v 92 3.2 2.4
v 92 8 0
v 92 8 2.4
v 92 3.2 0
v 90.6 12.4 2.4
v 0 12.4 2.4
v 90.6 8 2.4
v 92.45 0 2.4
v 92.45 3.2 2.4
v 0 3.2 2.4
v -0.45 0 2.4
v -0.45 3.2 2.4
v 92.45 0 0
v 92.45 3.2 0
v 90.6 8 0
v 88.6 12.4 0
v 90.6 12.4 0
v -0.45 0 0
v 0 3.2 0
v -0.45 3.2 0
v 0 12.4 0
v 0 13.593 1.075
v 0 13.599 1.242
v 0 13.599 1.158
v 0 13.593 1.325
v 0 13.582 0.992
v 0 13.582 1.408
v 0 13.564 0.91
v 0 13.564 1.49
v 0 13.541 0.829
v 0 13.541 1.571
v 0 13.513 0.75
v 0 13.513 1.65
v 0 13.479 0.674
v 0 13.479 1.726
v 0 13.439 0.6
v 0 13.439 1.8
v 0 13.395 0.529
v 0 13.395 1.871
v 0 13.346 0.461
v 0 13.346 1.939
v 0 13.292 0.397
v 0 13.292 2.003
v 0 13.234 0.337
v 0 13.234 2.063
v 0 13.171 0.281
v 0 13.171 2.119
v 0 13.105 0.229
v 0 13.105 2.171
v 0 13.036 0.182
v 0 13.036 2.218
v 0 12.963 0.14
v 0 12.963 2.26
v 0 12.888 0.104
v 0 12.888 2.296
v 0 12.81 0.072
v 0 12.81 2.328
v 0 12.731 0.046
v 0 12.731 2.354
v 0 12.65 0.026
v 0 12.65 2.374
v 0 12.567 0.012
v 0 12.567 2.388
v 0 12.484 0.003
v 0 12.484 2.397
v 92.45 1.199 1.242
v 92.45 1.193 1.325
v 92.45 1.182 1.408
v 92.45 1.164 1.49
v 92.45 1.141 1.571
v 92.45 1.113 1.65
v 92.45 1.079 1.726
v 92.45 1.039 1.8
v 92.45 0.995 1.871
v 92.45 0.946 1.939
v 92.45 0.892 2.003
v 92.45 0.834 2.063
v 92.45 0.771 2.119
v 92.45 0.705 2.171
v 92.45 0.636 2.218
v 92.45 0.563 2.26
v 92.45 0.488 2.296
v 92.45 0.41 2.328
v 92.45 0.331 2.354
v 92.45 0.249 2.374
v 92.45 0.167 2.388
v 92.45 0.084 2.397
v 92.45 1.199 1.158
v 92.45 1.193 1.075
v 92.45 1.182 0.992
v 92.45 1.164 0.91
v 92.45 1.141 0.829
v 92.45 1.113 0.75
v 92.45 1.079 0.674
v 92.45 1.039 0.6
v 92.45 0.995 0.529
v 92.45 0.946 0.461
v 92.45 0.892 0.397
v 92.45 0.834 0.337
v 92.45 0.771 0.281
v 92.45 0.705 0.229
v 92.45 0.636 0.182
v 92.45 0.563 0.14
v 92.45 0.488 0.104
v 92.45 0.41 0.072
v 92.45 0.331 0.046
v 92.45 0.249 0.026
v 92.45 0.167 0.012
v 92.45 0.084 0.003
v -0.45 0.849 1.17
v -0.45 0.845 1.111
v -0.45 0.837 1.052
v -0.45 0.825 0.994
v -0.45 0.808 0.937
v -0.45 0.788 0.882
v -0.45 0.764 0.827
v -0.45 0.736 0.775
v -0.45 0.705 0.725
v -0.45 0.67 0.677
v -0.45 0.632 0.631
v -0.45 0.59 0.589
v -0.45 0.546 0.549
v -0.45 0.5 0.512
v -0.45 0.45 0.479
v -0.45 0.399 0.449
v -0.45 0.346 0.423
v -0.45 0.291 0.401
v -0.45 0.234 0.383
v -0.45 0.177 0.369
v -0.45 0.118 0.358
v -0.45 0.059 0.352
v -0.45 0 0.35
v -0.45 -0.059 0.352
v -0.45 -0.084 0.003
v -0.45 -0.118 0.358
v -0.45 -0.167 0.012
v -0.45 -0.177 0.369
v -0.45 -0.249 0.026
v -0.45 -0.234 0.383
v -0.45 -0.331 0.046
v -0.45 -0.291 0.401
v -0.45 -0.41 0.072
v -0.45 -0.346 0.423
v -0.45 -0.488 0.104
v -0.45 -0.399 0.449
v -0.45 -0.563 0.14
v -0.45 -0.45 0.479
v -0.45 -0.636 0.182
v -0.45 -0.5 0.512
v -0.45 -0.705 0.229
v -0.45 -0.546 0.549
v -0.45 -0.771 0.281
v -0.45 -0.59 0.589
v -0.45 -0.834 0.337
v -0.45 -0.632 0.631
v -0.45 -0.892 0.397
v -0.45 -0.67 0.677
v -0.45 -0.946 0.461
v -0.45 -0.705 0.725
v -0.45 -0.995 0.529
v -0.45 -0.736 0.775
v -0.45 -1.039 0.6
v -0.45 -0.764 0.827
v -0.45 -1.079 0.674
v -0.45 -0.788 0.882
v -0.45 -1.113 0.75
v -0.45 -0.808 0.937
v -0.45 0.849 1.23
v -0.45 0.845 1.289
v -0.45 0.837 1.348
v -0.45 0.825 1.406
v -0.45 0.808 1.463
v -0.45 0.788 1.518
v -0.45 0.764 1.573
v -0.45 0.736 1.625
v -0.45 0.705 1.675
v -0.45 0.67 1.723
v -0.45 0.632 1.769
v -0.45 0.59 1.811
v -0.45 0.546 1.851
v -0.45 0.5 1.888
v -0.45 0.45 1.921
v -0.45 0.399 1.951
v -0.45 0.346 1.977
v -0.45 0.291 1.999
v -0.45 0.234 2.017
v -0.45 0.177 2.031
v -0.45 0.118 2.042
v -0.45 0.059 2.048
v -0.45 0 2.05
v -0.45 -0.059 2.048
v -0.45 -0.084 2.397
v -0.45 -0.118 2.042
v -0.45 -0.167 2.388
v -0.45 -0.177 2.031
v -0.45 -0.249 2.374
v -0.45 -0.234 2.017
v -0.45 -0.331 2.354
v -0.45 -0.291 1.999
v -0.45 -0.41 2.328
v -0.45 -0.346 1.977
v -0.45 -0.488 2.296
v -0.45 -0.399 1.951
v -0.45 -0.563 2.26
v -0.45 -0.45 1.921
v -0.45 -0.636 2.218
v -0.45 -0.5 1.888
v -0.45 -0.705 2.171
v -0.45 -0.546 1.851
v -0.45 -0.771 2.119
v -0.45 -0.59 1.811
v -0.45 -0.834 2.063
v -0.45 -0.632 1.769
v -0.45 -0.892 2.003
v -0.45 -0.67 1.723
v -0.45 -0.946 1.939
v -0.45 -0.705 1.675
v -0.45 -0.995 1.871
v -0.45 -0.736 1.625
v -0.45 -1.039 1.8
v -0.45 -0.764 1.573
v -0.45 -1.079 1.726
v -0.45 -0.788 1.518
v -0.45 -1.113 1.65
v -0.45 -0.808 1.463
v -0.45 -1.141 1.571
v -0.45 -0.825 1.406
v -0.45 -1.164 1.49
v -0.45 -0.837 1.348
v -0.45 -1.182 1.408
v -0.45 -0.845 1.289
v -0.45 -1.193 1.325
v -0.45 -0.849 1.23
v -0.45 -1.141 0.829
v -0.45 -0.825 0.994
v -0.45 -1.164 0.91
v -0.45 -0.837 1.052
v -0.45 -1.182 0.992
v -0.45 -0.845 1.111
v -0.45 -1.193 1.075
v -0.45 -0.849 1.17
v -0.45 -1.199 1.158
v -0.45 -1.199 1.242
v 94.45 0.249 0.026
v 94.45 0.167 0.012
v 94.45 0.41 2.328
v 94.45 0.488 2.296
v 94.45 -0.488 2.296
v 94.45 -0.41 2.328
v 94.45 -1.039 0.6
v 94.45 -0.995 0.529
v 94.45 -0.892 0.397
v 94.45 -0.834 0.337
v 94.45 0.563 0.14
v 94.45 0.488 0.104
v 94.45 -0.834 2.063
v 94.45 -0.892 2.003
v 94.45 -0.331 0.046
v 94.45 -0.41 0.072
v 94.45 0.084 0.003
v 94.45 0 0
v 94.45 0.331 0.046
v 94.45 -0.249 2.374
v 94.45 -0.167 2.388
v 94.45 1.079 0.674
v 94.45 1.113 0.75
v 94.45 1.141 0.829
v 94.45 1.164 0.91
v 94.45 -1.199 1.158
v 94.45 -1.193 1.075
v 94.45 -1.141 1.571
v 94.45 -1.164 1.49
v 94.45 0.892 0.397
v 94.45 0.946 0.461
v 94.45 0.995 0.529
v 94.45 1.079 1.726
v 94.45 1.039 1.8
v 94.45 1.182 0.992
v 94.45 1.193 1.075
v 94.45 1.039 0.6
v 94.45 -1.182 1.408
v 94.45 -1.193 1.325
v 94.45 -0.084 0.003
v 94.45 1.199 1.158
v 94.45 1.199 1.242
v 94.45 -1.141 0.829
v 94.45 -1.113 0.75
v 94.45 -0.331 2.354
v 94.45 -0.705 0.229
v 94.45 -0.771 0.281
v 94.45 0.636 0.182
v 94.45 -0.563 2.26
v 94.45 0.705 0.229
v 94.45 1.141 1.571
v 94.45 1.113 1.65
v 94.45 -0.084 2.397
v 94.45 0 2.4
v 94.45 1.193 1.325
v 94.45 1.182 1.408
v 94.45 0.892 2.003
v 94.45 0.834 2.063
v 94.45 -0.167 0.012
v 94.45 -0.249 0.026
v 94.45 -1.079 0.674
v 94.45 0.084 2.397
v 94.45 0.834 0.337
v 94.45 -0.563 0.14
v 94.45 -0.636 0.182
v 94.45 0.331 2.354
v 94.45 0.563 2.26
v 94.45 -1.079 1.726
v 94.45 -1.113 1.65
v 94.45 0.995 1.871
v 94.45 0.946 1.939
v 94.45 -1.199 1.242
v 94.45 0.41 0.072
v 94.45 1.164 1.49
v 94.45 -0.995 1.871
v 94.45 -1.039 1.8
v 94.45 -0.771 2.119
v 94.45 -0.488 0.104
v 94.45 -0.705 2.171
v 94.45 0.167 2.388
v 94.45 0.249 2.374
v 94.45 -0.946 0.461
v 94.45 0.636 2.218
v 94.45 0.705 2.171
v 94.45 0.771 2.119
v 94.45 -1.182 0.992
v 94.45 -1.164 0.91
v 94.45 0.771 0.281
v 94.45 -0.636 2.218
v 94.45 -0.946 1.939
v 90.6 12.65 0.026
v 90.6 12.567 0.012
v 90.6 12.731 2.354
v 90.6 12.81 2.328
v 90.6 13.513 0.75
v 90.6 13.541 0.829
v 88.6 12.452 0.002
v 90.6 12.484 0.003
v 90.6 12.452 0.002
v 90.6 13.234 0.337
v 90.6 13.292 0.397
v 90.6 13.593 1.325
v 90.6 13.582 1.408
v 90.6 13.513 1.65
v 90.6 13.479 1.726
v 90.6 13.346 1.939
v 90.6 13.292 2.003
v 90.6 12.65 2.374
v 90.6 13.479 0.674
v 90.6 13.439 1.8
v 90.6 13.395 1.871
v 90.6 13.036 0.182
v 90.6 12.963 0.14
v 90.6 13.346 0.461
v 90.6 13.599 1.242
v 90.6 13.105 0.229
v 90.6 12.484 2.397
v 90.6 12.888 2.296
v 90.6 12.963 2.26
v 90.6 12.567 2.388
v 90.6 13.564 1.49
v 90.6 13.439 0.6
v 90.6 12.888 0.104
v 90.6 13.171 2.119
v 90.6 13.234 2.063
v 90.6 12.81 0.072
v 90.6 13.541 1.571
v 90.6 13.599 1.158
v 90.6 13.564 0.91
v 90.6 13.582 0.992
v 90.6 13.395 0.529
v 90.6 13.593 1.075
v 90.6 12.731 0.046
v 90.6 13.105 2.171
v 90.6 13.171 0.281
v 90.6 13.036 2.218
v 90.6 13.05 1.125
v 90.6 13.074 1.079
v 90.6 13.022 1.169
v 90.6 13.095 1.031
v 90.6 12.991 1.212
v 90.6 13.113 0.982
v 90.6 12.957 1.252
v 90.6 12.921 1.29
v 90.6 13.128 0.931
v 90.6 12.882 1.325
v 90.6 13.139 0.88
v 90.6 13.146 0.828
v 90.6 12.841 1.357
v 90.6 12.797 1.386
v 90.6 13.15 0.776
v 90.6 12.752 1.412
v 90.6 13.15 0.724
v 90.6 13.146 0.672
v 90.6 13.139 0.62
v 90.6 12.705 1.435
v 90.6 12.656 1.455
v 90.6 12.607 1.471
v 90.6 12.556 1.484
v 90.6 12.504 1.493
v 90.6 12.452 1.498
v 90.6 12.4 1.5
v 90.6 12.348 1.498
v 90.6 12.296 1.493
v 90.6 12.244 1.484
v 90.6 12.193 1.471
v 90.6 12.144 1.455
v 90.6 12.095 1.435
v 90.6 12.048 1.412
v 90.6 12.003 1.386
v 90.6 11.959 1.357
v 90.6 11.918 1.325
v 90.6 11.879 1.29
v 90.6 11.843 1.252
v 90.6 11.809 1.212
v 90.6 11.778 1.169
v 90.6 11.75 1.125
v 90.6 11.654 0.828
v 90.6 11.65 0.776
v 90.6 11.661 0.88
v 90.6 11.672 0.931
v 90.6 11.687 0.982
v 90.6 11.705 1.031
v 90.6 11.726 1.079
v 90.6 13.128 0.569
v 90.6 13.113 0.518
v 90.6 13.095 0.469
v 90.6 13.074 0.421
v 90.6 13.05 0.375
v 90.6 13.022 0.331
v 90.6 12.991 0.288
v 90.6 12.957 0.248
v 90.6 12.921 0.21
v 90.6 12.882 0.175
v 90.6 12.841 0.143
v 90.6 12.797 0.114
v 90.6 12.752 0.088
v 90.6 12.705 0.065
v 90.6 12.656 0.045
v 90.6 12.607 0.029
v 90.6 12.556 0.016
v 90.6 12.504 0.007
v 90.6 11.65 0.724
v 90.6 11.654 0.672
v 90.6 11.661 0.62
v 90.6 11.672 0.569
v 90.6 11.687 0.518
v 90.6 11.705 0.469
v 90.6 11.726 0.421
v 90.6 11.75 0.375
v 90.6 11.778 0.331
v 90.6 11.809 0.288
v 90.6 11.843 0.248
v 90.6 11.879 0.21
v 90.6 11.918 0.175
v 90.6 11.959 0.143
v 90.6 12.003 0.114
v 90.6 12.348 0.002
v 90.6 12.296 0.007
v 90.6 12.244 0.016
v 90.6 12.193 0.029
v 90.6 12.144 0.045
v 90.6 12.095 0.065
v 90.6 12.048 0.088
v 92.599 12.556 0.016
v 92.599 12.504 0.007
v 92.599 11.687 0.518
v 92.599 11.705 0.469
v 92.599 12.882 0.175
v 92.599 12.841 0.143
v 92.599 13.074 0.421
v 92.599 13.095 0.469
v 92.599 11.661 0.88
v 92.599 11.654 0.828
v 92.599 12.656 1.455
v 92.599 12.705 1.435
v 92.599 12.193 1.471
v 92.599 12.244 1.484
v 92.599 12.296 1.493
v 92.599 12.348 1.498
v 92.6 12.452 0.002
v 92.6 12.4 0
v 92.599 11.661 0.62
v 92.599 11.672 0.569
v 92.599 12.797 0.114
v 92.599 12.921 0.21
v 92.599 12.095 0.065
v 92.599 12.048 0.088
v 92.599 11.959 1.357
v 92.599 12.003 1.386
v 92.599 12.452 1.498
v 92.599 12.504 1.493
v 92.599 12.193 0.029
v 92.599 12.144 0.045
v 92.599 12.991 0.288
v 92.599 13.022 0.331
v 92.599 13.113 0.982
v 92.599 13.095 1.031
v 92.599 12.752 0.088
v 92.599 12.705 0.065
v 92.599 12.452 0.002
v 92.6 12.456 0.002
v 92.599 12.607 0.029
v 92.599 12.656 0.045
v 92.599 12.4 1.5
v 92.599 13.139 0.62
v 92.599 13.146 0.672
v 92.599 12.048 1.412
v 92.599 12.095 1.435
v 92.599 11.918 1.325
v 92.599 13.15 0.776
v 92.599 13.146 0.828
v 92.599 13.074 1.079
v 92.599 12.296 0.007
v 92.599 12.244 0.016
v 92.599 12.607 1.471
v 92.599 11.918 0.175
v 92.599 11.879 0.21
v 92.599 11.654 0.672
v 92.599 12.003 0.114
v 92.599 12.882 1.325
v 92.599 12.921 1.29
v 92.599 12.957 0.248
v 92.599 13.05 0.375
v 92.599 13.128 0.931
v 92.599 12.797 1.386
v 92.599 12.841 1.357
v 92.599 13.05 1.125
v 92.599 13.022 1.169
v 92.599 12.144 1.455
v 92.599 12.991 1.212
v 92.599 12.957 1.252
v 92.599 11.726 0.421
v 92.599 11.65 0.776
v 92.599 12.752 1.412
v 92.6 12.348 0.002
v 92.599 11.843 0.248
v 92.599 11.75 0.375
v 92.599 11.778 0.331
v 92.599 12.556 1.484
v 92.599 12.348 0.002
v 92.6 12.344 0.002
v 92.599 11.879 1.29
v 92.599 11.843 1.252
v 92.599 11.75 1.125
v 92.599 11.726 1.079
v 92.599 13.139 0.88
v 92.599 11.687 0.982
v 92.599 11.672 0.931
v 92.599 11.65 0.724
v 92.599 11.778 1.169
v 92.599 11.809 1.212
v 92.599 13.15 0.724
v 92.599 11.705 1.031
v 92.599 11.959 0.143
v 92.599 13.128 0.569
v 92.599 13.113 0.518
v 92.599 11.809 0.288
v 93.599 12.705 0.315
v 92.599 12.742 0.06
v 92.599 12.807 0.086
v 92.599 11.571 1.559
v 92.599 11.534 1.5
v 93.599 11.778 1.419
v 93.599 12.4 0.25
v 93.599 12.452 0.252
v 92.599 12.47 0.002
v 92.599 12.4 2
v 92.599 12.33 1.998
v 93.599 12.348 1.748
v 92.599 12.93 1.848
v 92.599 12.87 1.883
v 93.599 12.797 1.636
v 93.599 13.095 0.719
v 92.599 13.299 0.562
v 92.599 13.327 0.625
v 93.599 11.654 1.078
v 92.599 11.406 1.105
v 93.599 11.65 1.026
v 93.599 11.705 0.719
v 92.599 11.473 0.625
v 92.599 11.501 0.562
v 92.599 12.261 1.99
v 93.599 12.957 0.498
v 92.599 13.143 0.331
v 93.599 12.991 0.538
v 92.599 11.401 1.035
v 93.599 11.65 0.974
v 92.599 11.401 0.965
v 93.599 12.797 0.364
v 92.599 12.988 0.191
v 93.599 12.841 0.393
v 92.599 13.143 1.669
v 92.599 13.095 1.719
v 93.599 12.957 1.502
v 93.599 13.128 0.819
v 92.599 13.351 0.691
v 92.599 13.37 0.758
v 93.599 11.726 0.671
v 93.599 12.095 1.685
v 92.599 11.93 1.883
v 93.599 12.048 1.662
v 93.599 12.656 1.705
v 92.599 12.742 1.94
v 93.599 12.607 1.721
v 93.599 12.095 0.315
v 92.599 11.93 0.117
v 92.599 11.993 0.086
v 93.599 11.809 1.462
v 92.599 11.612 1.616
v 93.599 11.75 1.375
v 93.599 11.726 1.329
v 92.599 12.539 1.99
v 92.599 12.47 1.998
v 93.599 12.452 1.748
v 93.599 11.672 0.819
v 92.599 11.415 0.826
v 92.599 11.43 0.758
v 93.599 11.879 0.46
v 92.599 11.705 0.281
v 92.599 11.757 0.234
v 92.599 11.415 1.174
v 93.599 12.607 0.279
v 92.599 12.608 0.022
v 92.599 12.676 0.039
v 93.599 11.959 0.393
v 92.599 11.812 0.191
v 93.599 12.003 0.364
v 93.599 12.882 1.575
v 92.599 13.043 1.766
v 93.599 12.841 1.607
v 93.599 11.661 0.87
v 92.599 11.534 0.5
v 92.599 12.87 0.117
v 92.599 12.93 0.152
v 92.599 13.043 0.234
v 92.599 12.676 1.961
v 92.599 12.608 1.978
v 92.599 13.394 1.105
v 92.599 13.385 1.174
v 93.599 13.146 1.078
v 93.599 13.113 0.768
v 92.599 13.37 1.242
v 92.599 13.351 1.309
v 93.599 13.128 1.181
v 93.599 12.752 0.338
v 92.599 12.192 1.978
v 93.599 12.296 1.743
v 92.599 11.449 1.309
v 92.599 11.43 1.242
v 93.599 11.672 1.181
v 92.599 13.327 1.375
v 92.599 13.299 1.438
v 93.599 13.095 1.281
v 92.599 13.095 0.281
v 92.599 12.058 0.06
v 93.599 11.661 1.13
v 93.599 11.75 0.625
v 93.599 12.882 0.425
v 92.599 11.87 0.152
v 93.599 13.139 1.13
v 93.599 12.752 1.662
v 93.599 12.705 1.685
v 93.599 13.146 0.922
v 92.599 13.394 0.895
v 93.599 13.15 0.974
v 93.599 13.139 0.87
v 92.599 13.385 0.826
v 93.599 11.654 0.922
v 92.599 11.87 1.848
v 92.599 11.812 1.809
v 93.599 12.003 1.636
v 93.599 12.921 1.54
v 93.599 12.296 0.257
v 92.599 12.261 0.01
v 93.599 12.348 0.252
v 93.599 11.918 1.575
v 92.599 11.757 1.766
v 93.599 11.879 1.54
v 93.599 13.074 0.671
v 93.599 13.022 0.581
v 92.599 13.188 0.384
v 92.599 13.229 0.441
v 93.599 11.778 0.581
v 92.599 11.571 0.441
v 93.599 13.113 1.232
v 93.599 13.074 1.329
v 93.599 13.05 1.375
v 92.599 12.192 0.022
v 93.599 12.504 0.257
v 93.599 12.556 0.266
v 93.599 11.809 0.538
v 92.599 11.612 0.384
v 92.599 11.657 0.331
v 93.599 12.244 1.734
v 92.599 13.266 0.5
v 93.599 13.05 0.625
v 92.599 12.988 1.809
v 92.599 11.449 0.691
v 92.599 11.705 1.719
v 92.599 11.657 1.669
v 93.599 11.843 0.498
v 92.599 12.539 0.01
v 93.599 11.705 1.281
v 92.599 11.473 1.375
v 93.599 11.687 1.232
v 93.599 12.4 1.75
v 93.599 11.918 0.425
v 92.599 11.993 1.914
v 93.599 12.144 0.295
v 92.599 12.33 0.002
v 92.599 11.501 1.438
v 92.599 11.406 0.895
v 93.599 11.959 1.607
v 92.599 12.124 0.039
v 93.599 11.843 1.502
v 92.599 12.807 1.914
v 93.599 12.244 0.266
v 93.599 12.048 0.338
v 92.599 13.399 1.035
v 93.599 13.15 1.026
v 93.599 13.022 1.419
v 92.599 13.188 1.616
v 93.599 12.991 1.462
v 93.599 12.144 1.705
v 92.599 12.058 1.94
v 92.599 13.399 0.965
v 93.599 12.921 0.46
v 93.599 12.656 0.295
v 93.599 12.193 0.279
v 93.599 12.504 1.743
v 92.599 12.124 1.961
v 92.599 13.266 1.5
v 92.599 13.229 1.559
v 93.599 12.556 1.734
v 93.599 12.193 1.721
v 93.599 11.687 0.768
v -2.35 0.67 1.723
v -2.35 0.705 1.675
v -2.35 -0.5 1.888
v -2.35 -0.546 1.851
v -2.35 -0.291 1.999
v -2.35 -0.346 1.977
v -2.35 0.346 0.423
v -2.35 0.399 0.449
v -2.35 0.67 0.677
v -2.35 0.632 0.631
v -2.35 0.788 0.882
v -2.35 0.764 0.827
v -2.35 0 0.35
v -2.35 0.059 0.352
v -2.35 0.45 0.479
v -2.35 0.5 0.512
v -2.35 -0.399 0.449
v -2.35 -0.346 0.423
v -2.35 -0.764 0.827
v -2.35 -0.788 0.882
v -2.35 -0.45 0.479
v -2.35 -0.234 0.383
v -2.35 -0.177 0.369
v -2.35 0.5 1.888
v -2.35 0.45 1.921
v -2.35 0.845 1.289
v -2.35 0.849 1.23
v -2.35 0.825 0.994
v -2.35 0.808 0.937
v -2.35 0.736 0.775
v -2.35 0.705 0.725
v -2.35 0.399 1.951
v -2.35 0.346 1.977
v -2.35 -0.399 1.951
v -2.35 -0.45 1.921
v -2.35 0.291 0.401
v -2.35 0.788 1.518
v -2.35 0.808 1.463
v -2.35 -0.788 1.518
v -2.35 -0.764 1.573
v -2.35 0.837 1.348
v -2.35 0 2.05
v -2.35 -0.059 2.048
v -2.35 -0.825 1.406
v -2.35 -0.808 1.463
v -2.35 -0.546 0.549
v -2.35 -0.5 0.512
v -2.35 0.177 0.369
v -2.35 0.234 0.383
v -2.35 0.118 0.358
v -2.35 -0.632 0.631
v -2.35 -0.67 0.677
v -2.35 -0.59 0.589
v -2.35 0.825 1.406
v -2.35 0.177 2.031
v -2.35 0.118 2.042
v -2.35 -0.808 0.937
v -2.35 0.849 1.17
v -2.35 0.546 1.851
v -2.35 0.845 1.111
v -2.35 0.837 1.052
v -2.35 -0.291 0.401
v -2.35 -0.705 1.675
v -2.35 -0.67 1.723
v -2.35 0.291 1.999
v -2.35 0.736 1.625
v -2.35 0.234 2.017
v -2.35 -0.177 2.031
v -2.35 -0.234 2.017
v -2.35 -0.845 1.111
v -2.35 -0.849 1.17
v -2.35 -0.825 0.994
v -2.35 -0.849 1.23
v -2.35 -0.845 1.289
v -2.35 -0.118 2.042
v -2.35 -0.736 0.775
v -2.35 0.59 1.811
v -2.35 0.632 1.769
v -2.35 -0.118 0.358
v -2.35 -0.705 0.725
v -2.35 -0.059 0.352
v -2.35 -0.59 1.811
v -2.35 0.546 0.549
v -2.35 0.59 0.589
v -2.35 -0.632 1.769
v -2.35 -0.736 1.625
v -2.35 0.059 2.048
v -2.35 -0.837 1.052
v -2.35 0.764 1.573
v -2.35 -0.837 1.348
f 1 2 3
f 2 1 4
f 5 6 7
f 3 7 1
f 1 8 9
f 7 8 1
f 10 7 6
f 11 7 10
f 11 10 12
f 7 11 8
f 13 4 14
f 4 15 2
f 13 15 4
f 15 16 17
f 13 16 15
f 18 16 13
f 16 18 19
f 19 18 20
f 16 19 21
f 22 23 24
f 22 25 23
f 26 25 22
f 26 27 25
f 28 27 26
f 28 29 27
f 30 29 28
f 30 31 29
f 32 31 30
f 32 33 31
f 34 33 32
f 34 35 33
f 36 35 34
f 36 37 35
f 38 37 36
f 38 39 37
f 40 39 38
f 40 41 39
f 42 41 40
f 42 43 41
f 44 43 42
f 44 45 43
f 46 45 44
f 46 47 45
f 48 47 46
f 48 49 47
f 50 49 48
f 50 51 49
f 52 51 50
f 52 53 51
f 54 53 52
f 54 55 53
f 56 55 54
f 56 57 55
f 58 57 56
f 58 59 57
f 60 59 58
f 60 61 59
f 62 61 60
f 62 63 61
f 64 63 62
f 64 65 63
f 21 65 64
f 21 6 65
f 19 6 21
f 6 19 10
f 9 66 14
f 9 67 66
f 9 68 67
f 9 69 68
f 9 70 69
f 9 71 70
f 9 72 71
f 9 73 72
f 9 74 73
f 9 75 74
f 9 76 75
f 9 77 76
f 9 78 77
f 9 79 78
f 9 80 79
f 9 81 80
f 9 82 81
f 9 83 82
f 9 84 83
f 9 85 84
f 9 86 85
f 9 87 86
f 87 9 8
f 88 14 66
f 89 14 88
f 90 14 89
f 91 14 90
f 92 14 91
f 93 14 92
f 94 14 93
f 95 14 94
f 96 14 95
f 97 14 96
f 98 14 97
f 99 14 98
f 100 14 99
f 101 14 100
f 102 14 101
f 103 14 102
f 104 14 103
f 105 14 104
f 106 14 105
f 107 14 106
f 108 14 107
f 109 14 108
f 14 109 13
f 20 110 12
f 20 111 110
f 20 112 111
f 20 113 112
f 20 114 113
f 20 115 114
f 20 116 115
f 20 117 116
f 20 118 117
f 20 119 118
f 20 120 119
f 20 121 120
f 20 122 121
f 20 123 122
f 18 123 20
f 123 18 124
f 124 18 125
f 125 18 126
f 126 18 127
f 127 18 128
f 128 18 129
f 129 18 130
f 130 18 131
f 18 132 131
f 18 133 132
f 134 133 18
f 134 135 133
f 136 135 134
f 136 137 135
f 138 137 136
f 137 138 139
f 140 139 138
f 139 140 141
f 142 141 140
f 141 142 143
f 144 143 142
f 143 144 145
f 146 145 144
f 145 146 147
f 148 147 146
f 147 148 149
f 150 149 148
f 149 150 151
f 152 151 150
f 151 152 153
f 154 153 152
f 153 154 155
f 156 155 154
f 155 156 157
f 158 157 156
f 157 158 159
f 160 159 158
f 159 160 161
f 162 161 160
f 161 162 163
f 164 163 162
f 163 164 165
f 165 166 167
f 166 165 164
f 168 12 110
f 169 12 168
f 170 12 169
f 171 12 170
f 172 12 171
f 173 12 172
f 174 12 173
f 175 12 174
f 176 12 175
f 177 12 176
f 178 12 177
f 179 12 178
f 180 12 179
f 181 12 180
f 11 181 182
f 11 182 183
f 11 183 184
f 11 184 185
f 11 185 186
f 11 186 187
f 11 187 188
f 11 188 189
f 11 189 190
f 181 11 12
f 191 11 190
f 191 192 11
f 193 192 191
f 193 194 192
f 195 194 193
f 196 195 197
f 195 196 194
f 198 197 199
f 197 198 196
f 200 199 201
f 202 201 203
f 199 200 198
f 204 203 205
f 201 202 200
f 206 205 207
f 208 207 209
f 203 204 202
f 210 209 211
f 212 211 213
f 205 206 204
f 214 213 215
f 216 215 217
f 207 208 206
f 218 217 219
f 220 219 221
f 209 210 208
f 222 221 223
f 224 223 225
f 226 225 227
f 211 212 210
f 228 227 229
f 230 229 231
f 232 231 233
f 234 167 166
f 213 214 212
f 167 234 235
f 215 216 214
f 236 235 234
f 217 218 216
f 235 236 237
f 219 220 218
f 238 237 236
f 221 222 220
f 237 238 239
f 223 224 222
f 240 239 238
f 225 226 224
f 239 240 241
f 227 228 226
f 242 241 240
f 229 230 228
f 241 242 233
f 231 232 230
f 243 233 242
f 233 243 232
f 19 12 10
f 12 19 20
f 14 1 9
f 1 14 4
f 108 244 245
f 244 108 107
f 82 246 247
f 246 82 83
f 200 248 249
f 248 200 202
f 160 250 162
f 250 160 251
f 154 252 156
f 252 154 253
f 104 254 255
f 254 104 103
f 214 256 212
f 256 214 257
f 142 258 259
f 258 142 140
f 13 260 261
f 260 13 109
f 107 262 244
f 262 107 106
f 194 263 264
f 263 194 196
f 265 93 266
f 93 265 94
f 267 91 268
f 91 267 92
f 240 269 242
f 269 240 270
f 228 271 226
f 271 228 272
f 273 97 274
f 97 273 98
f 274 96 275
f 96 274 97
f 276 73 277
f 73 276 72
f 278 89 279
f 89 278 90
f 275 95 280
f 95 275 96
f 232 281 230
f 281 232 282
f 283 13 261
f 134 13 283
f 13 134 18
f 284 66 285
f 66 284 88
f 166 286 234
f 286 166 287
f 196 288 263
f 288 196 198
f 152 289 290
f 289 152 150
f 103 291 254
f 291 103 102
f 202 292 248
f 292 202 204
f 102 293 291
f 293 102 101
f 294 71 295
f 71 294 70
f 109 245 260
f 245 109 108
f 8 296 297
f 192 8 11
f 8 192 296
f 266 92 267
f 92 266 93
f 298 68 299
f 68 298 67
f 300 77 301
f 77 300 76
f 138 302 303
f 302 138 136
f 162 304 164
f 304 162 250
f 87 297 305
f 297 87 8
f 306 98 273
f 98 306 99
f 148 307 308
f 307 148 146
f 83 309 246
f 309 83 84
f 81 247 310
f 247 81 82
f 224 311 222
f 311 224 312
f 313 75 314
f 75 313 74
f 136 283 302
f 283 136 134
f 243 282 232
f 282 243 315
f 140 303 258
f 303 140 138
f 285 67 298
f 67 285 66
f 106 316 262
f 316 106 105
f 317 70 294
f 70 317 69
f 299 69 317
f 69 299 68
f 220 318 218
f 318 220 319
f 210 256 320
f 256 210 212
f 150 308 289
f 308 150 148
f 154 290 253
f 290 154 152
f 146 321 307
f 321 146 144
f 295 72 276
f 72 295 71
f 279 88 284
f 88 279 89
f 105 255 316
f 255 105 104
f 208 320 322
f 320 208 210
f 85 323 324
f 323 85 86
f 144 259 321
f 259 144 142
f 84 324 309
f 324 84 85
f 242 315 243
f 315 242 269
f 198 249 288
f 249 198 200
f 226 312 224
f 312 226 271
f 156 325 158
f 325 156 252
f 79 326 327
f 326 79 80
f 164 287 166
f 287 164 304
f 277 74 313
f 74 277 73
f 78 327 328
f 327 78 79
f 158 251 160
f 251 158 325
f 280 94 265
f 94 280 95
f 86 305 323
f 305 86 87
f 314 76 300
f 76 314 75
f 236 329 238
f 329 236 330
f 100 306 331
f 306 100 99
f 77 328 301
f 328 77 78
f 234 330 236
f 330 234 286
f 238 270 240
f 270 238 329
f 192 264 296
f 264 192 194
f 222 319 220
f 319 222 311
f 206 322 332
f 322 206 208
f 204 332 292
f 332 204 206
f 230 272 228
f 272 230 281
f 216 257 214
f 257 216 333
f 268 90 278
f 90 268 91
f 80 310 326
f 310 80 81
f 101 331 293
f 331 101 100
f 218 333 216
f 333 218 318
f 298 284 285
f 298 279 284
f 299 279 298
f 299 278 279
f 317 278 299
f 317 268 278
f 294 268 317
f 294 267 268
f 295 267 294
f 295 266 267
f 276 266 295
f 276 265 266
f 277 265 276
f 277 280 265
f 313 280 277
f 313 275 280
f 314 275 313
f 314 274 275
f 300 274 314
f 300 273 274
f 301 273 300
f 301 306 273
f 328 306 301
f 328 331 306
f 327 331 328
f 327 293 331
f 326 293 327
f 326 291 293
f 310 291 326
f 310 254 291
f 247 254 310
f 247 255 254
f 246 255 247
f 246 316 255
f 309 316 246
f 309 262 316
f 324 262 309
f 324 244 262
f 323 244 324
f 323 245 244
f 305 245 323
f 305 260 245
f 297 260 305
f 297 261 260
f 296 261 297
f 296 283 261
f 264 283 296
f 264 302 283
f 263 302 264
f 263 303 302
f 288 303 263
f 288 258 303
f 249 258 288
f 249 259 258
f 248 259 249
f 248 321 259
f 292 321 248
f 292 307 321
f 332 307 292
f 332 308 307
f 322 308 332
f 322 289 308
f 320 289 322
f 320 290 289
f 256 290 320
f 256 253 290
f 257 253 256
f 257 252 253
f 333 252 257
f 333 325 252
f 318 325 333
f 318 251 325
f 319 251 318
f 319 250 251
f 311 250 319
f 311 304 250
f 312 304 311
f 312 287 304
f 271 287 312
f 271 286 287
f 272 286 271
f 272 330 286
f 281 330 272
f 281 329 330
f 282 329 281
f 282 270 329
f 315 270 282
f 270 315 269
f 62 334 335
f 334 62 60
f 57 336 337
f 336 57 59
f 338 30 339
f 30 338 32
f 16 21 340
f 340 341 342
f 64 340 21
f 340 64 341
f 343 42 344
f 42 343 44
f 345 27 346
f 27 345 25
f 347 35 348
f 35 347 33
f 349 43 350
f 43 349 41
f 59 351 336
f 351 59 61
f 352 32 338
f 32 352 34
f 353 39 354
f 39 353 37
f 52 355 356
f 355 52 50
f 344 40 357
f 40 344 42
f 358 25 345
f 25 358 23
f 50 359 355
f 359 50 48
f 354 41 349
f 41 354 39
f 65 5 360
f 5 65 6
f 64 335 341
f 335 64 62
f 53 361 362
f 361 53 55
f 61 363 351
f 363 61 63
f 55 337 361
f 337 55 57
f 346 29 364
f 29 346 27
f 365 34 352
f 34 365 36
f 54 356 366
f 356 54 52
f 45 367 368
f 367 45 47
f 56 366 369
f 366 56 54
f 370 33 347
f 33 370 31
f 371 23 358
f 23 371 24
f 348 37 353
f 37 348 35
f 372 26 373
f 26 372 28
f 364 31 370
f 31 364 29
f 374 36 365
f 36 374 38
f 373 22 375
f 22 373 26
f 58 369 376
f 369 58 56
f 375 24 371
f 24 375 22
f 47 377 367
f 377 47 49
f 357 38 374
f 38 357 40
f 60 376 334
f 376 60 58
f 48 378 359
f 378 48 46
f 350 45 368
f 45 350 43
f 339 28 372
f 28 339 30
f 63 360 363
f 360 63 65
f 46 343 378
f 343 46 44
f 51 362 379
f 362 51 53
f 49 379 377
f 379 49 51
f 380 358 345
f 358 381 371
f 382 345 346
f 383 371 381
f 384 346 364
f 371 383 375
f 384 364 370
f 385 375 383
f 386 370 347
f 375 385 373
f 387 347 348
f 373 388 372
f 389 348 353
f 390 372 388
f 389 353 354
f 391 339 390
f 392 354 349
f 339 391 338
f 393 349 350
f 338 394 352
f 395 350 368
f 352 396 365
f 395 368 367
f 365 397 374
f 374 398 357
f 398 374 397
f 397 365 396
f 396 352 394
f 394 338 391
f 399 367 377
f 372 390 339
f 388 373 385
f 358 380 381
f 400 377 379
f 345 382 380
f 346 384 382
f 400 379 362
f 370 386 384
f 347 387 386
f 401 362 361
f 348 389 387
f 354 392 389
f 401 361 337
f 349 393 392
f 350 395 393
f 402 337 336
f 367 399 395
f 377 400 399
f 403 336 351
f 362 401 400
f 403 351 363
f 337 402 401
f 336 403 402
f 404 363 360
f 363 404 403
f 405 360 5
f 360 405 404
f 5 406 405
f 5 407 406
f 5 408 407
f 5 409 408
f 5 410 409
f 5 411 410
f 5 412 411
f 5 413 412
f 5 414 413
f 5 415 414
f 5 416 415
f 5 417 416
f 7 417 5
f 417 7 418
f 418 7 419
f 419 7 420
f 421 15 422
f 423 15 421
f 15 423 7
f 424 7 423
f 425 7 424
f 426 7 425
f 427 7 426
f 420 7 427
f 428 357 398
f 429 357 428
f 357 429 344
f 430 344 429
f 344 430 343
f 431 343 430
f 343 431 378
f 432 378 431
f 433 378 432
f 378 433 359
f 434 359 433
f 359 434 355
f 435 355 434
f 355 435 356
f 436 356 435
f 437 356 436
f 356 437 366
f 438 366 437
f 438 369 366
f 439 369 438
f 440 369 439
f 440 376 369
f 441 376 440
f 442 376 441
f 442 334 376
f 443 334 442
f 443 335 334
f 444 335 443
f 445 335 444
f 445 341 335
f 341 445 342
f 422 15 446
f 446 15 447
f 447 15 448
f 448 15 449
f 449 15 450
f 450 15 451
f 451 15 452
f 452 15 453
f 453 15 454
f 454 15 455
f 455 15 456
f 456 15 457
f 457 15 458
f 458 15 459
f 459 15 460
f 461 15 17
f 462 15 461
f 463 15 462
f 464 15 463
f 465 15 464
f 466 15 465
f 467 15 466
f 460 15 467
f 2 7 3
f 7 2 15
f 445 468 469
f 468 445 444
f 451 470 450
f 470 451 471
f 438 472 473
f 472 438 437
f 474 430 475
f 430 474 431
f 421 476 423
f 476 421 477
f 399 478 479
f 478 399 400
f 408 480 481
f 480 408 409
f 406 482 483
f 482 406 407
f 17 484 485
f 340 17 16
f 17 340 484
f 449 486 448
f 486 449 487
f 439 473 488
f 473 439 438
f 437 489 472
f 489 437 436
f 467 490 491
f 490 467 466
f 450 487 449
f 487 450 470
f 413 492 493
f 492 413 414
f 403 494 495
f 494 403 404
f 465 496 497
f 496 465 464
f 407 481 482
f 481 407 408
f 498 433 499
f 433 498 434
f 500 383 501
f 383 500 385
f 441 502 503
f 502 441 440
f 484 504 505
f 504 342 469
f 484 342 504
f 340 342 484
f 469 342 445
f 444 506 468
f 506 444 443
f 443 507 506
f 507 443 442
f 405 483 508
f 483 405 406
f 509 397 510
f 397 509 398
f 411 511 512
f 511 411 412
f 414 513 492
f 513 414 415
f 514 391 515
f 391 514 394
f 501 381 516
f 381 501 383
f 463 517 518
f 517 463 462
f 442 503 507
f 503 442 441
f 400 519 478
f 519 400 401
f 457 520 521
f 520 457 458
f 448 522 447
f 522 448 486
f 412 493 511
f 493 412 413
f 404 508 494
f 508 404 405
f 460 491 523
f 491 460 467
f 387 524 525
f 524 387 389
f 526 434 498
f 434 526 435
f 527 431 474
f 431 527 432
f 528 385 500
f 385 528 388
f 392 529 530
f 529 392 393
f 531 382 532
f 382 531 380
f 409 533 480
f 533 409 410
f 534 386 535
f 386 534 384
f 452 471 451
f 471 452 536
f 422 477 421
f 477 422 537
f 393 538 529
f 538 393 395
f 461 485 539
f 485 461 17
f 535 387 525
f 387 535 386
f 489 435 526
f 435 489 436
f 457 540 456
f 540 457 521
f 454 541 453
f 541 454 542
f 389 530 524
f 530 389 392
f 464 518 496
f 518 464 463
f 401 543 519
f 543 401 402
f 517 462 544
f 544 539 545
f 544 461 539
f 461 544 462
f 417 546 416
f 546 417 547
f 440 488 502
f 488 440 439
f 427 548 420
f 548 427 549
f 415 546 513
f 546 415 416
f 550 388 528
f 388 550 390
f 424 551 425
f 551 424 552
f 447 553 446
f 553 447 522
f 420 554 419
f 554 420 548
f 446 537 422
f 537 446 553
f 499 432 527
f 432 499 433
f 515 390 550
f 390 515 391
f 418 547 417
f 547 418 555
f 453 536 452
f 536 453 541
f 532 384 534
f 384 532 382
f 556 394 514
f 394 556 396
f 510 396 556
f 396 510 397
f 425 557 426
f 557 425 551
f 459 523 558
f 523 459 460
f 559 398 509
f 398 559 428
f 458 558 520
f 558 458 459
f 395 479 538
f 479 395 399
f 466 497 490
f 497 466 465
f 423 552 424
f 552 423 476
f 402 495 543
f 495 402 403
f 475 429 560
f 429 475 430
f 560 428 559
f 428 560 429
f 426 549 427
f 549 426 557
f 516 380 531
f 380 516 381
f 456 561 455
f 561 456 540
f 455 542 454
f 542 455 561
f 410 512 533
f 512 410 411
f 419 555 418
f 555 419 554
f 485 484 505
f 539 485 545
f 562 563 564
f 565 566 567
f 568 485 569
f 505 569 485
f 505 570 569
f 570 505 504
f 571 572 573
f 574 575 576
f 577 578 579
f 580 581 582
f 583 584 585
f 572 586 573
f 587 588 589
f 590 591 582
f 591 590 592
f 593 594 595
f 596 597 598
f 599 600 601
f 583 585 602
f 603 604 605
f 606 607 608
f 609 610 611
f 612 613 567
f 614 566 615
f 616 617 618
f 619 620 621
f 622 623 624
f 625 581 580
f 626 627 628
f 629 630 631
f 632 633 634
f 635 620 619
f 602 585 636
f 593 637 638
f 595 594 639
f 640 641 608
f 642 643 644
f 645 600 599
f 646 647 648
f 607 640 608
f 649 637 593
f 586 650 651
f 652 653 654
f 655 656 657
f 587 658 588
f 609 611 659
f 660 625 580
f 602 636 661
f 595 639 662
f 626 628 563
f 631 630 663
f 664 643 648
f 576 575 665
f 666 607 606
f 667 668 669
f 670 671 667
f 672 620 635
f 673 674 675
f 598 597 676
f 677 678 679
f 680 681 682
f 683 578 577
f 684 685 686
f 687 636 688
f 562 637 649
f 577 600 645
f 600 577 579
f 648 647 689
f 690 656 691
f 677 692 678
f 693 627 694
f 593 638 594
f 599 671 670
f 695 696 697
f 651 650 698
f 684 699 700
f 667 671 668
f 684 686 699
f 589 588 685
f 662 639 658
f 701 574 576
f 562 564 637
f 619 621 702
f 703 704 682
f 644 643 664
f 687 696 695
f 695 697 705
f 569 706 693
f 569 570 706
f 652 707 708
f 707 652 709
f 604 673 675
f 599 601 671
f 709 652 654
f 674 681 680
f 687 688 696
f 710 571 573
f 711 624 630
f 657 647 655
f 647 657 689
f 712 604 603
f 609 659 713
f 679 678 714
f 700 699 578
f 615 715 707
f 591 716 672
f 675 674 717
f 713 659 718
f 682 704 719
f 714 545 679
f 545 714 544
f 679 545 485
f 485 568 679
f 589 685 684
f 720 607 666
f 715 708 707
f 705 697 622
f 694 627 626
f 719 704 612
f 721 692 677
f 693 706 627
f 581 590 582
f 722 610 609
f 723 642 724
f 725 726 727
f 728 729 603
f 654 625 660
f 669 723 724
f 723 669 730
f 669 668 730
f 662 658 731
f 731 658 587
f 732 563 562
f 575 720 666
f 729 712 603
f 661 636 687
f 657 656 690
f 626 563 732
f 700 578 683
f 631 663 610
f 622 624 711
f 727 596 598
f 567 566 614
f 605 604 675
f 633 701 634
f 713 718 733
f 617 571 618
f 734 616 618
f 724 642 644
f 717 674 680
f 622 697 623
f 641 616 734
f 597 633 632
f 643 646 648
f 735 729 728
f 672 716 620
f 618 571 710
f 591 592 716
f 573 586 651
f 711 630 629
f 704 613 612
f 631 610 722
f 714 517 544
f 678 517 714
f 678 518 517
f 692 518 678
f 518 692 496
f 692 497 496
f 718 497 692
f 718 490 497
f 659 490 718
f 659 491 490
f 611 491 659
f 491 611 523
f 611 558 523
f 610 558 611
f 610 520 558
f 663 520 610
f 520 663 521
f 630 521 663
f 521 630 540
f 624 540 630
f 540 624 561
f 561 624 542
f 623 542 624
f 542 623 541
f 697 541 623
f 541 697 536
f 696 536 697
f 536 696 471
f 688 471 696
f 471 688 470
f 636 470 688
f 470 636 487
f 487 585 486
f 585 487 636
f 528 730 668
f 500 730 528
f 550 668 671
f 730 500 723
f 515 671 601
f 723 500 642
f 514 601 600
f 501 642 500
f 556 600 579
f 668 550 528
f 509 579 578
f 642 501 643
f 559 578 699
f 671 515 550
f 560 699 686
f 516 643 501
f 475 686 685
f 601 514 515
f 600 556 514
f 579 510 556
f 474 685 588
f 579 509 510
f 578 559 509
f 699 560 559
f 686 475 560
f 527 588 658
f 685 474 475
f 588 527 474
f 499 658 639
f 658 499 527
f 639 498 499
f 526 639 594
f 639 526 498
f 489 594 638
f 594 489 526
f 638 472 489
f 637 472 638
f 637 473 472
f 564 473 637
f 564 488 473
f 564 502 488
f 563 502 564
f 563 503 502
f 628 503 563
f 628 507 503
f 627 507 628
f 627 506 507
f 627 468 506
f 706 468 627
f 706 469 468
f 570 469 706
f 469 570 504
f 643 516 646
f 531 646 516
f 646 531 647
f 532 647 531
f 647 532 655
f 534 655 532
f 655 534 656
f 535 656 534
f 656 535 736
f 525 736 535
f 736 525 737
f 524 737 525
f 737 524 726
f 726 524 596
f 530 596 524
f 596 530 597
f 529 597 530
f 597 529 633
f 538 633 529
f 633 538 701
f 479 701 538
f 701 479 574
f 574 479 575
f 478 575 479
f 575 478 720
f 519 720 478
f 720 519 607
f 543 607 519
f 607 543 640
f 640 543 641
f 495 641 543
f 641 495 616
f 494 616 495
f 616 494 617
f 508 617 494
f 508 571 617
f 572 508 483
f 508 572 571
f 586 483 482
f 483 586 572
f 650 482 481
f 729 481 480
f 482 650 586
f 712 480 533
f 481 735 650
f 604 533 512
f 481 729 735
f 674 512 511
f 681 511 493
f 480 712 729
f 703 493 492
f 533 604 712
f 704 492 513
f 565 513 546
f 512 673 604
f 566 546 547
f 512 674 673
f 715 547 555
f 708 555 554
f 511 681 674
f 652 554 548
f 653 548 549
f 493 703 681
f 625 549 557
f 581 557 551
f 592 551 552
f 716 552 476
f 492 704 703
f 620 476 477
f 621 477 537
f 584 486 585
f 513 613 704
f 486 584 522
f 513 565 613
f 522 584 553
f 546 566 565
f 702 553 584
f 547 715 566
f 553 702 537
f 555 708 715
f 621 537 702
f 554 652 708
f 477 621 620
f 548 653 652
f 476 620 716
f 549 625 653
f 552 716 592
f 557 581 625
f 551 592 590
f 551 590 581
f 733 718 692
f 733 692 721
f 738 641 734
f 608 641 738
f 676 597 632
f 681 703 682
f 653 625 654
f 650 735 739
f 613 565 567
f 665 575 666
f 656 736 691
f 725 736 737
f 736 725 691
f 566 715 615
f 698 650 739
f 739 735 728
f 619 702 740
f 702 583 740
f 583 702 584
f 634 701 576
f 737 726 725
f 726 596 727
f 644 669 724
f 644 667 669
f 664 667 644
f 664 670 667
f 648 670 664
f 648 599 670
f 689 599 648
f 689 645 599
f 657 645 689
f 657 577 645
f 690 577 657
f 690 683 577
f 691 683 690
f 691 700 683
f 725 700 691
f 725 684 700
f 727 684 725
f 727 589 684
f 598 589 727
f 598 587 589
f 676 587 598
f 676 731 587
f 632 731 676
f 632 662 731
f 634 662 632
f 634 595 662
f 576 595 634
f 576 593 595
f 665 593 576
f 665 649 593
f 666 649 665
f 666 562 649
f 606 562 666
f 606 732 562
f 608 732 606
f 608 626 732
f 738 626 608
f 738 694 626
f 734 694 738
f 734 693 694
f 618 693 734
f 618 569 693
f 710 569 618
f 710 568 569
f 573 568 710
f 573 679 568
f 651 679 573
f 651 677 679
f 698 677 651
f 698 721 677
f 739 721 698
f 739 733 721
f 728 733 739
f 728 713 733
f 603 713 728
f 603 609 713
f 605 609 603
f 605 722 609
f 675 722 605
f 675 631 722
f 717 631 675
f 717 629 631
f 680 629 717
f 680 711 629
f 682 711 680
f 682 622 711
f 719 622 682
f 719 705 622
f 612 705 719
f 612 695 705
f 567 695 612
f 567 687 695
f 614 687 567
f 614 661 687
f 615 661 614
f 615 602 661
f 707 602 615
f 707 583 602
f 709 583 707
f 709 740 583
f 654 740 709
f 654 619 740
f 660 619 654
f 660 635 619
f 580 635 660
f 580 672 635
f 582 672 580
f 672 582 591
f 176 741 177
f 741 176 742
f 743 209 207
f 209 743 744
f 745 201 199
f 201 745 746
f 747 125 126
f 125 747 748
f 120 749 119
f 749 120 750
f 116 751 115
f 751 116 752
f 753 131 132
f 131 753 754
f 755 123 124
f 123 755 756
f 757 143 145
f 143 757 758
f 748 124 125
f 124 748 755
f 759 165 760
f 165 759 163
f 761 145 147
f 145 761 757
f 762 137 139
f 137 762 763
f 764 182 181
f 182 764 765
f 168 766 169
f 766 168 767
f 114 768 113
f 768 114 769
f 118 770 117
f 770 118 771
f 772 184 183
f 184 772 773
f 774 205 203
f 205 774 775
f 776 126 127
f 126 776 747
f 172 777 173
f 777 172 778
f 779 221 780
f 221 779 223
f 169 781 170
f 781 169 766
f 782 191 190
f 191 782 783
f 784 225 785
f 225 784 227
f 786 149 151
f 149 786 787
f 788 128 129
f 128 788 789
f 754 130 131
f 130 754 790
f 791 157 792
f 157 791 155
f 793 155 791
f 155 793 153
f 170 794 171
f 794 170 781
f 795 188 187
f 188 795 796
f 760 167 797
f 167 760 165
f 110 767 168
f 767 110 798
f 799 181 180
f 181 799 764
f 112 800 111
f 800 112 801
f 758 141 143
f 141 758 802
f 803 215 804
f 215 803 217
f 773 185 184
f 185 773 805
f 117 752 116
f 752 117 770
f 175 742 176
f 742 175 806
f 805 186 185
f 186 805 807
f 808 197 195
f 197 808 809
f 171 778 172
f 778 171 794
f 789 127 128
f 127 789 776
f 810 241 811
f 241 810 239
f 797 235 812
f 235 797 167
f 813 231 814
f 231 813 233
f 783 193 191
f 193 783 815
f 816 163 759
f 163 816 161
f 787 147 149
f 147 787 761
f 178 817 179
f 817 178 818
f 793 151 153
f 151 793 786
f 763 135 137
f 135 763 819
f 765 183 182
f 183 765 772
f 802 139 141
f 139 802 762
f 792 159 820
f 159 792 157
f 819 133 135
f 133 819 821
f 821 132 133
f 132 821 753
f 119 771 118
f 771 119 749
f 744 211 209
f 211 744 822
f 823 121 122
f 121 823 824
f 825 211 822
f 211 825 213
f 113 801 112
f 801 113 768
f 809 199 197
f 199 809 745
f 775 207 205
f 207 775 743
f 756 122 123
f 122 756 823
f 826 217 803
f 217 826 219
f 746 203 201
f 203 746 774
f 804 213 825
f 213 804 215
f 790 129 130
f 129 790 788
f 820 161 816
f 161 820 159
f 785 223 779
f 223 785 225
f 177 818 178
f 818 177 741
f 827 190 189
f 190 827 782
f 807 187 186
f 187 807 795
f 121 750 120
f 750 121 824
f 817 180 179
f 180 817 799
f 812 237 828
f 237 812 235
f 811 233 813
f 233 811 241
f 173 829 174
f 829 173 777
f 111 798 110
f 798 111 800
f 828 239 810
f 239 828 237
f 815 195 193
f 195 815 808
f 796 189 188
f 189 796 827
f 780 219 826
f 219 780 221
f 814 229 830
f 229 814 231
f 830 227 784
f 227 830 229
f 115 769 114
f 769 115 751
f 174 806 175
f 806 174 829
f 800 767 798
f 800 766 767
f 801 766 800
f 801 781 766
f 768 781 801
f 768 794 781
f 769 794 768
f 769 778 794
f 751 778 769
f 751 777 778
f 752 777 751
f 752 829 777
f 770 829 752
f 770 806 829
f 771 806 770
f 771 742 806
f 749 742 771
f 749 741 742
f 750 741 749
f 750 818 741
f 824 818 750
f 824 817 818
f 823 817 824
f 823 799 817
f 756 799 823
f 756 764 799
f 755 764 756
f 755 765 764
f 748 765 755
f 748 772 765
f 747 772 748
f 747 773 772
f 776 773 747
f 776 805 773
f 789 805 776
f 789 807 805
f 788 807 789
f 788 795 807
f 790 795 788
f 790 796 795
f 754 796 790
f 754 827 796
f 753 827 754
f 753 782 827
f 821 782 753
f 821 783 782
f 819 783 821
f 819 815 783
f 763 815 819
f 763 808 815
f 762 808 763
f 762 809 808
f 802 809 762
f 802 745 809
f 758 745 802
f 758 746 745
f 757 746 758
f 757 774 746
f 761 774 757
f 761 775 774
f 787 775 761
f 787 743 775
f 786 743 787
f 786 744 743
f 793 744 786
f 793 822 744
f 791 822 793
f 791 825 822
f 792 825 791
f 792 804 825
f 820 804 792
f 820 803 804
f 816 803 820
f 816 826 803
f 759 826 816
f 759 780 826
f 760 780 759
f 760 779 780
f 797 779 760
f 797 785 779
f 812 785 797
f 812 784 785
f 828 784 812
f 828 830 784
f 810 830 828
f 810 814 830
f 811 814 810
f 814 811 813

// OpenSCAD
$fn = 90;

EPS = 0.001;

WIDTH = 92.0;
HEIGHT = 14.8;
DEPTH = 2.4;

OVERHANG_W = (92.9 -WIDTH)/2;
OVERHANG_H = 3.2;

ANCHOR_PIN_L = 2.0;

CLICK_PIN_D = 1.7;
CLICK_PIN_L = 1.9;

RECESS_W = WIDTH - 90.6;
RECESS_OFFSET = 9.2;
M = 10;

DRIVING_PIN_D = 1.5;
DRIVING_PIN_L = 2.0;
DRIVING_PIN_HEAD_D = 2;


module edge(o1=0, o2=0) {
    translate([-o1, 0, DEPTH/2])
        rotate([0,90,0])
            cylinder(d=DEPTH, h=WIDTH + o1 + o2);
}

module click_pin() {
    translate([-OVERHANG_W, 0, DEPTH/2])
        rotate([0,90,0])
            cylinder(d=CLICK_PIN_D, h=2*CLICK_PIN_L, center=true);
}

module overhang() {
    translate([-OVERHANG_W, 0,0])
        cube([WIDTH + 2*OVERHANG_W, OVERHANG_H, DEPTH]);    
}

module body() {
    HEIGHT_REDUCED = HEIGHT - DEPTH;
    cube([WIDTH, HEIGHT_REDUCED, DEPTH]);    
    overhang();

    edge(o2 = OVERHANG_W + ANCHOR_PIN_L, o1 = OVERHANG_W);
    translate([0,HEIGHT_REDUCED,0])
        edge();
}

module recess() {
    translate([WIDTH - RECESS_W, RECESS_OFFSET - DEPTH/2, -M/2])
        cube([M, M, M]);
}

module driving_pin() {
    translate([
        WIDTH - RECESS_W-DRIVING_PIN_L,
        HEIGHT - DEPTH,
        DRIVING_PIN_D/2
    ]) {
        rotate([0,90,0])
            cylinder(d=DRIVING_PIN_D, h=2*DRIVING_PIN_L);
    }
    translate([
        WIDTH - RECESS_W+DRIVING_PIN_L-EPS,
        HEIGHT - DEPTH,
        DRIVING_PIN_HEAD_D/2
    ]) {
        rotate([0,90,0])
            cylinder(d1=DRIVING_PIN_HEAD_D, d2=DRIVING_PIN_D, h=1);
    }
}

module fin() {
    difference() {
        body();
        recess();
    }
    driving_pin();
    click_pin();
}

fin();
